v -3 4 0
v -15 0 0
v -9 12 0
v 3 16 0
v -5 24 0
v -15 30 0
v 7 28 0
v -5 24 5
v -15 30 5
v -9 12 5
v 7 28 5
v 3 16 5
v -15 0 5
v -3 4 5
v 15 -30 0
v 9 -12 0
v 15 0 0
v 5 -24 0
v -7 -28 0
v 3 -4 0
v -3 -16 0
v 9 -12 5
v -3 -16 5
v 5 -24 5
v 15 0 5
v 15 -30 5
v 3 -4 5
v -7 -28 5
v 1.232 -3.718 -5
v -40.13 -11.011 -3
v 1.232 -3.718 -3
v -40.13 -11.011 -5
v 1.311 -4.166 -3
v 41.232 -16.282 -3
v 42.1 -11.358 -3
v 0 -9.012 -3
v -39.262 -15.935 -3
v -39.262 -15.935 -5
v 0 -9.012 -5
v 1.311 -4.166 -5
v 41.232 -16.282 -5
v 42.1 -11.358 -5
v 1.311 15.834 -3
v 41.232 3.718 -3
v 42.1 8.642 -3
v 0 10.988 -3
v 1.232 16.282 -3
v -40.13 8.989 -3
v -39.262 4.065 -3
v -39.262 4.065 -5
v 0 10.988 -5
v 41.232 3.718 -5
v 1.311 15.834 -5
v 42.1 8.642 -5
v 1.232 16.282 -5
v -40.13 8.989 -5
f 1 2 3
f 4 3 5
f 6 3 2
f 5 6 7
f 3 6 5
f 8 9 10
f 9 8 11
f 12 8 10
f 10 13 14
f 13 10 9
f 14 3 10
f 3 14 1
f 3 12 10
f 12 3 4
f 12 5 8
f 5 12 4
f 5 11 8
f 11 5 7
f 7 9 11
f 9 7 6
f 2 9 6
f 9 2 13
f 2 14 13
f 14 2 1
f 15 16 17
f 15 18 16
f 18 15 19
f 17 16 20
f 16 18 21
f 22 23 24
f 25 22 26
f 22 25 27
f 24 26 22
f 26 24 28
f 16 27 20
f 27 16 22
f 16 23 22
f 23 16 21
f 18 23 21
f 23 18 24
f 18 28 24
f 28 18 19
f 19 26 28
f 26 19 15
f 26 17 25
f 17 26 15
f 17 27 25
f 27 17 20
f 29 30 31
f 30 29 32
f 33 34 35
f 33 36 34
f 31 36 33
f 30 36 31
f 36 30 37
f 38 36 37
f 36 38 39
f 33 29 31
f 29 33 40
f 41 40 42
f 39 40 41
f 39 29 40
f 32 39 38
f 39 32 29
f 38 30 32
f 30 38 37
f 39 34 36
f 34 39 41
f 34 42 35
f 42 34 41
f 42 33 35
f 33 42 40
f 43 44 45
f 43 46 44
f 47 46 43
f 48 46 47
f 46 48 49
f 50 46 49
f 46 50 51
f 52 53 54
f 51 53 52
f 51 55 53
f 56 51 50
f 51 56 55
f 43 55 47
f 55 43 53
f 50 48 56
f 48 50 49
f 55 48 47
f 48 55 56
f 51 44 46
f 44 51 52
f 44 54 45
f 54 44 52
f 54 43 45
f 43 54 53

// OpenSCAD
// Lightning-shaped blade module
module lightning_shaped_blade() {
    linear_extrude(height = 5)  // Extrude the 2D profile to create a 3D shape
    polygon(points = [
        [0, 0], [12, 4], [6, 12], [18, 16], [10, 24], [22, 28], [0, 30]
    ]);
}

// Flat elongated piece module
module flat_elongated_piece(length = 40, width = 5, thickness = 2) {
    // Adjusting the edges to make them smoother
    hull() {
        translate([-length / 2, -width / 2, 0]) cube([2, width, thickness]);
        translate([length / 2, -width / 2, 0]) cube([2, width, thickness]);
    }
}

// Layer 1: Lightning-shaped blades
module layer_1() {
    translate([-15, 0, 0]) rotate([0, 0, 0]) lightning_shaped_blade();
    translate([15, 0, 0]) rotate([0, 0, 180]) lightning_shaped_blade();
}

// Layer 2: Flat elongated pieces
module layer_2() {
    // Adjusting the angle and position of the flat elongated pieces
    translate([-20, -10, -5]) rotate([0, 0, 10]) flat_elongated_piece();
    translate([20, -10, -5]) rotate([0, 0, -10]) flat_elongated_piece();
    translate([-20, 10, -5]) rotate([0, 0, 10]) flat_elongated_piece();
    translate([20, 10, -5]) rotate([0, 0, -10]) flat_elongated_piece();
}

// Combine all layers to form the final model
module flexible_coupling() {
    layer_1();
    layer_2();
}

// Render the model
flexible_coupling();
